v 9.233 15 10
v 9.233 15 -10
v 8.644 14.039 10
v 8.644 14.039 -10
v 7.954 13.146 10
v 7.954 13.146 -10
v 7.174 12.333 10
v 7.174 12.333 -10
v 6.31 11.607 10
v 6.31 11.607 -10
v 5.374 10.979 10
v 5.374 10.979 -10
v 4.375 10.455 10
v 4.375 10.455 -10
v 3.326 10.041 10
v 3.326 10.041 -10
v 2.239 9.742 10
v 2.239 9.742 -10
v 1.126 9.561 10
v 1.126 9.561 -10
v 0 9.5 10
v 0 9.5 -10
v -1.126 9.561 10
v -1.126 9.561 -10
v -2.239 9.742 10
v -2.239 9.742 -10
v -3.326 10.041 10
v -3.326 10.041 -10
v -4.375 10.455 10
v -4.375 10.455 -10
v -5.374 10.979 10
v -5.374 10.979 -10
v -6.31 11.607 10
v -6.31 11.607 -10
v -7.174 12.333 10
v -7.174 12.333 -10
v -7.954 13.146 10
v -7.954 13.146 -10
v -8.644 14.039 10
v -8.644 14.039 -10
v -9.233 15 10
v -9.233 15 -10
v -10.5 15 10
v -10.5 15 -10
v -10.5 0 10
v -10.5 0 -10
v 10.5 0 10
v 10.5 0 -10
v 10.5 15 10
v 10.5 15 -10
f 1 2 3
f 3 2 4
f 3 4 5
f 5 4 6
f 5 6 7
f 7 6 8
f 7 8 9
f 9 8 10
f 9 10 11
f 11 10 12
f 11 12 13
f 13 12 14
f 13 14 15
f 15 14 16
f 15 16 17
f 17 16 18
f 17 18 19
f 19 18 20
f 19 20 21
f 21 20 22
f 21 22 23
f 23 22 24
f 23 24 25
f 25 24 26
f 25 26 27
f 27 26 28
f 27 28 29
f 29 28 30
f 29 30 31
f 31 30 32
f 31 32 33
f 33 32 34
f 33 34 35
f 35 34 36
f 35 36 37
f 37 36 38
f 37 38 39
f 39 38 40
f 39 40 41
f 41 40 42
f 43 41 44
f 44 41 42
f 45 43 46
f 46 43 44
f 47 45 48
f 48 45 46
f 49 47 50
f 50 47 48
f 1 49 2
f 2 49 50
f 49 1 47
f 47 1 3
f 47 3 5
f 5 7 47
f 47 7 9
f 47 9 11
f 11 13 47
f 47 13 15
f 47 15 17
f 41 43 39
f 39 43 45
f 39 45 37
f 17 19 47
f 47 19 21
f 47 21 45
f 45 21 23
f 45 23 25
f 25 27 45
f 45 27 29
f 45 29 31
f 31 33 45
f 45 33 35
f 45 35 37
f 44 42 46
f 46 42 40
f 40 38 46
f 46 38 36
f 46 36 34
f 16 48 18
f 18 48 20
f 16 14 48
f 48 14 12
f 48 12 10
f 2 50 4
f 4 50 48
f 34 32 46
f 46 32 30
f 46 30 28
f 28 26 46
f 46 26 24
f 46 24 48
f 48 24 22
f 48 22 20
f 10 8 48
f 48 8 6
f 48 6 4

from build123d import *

# Parameters (mm, degrees)
EXTRUDE_1_DEPTH = 10


with BuildPart() as part:
    # 草图1 → 凸台-拉伸1 (new body, symmetric)
    with BuildSketch(Plane.XY):
        with BuildLine():
            Line((-10.5, 15), (-10.5, 0))
            Line((-10.5, 0), (10.5, 0))
            Line((10.5, 0), (10.5, 15))
            Line((10.5, 15), (9.233092656, 15))
            ThreePointArc((9.233092656, 15), (0, 9.5), (-9.233092656, 15))
            Line((-9.233092656, 15), (-10.5, 15))
        make_face()
    extrude(amount=EXTRUDE_1_DEPTH, both=True)


solid = part.part
